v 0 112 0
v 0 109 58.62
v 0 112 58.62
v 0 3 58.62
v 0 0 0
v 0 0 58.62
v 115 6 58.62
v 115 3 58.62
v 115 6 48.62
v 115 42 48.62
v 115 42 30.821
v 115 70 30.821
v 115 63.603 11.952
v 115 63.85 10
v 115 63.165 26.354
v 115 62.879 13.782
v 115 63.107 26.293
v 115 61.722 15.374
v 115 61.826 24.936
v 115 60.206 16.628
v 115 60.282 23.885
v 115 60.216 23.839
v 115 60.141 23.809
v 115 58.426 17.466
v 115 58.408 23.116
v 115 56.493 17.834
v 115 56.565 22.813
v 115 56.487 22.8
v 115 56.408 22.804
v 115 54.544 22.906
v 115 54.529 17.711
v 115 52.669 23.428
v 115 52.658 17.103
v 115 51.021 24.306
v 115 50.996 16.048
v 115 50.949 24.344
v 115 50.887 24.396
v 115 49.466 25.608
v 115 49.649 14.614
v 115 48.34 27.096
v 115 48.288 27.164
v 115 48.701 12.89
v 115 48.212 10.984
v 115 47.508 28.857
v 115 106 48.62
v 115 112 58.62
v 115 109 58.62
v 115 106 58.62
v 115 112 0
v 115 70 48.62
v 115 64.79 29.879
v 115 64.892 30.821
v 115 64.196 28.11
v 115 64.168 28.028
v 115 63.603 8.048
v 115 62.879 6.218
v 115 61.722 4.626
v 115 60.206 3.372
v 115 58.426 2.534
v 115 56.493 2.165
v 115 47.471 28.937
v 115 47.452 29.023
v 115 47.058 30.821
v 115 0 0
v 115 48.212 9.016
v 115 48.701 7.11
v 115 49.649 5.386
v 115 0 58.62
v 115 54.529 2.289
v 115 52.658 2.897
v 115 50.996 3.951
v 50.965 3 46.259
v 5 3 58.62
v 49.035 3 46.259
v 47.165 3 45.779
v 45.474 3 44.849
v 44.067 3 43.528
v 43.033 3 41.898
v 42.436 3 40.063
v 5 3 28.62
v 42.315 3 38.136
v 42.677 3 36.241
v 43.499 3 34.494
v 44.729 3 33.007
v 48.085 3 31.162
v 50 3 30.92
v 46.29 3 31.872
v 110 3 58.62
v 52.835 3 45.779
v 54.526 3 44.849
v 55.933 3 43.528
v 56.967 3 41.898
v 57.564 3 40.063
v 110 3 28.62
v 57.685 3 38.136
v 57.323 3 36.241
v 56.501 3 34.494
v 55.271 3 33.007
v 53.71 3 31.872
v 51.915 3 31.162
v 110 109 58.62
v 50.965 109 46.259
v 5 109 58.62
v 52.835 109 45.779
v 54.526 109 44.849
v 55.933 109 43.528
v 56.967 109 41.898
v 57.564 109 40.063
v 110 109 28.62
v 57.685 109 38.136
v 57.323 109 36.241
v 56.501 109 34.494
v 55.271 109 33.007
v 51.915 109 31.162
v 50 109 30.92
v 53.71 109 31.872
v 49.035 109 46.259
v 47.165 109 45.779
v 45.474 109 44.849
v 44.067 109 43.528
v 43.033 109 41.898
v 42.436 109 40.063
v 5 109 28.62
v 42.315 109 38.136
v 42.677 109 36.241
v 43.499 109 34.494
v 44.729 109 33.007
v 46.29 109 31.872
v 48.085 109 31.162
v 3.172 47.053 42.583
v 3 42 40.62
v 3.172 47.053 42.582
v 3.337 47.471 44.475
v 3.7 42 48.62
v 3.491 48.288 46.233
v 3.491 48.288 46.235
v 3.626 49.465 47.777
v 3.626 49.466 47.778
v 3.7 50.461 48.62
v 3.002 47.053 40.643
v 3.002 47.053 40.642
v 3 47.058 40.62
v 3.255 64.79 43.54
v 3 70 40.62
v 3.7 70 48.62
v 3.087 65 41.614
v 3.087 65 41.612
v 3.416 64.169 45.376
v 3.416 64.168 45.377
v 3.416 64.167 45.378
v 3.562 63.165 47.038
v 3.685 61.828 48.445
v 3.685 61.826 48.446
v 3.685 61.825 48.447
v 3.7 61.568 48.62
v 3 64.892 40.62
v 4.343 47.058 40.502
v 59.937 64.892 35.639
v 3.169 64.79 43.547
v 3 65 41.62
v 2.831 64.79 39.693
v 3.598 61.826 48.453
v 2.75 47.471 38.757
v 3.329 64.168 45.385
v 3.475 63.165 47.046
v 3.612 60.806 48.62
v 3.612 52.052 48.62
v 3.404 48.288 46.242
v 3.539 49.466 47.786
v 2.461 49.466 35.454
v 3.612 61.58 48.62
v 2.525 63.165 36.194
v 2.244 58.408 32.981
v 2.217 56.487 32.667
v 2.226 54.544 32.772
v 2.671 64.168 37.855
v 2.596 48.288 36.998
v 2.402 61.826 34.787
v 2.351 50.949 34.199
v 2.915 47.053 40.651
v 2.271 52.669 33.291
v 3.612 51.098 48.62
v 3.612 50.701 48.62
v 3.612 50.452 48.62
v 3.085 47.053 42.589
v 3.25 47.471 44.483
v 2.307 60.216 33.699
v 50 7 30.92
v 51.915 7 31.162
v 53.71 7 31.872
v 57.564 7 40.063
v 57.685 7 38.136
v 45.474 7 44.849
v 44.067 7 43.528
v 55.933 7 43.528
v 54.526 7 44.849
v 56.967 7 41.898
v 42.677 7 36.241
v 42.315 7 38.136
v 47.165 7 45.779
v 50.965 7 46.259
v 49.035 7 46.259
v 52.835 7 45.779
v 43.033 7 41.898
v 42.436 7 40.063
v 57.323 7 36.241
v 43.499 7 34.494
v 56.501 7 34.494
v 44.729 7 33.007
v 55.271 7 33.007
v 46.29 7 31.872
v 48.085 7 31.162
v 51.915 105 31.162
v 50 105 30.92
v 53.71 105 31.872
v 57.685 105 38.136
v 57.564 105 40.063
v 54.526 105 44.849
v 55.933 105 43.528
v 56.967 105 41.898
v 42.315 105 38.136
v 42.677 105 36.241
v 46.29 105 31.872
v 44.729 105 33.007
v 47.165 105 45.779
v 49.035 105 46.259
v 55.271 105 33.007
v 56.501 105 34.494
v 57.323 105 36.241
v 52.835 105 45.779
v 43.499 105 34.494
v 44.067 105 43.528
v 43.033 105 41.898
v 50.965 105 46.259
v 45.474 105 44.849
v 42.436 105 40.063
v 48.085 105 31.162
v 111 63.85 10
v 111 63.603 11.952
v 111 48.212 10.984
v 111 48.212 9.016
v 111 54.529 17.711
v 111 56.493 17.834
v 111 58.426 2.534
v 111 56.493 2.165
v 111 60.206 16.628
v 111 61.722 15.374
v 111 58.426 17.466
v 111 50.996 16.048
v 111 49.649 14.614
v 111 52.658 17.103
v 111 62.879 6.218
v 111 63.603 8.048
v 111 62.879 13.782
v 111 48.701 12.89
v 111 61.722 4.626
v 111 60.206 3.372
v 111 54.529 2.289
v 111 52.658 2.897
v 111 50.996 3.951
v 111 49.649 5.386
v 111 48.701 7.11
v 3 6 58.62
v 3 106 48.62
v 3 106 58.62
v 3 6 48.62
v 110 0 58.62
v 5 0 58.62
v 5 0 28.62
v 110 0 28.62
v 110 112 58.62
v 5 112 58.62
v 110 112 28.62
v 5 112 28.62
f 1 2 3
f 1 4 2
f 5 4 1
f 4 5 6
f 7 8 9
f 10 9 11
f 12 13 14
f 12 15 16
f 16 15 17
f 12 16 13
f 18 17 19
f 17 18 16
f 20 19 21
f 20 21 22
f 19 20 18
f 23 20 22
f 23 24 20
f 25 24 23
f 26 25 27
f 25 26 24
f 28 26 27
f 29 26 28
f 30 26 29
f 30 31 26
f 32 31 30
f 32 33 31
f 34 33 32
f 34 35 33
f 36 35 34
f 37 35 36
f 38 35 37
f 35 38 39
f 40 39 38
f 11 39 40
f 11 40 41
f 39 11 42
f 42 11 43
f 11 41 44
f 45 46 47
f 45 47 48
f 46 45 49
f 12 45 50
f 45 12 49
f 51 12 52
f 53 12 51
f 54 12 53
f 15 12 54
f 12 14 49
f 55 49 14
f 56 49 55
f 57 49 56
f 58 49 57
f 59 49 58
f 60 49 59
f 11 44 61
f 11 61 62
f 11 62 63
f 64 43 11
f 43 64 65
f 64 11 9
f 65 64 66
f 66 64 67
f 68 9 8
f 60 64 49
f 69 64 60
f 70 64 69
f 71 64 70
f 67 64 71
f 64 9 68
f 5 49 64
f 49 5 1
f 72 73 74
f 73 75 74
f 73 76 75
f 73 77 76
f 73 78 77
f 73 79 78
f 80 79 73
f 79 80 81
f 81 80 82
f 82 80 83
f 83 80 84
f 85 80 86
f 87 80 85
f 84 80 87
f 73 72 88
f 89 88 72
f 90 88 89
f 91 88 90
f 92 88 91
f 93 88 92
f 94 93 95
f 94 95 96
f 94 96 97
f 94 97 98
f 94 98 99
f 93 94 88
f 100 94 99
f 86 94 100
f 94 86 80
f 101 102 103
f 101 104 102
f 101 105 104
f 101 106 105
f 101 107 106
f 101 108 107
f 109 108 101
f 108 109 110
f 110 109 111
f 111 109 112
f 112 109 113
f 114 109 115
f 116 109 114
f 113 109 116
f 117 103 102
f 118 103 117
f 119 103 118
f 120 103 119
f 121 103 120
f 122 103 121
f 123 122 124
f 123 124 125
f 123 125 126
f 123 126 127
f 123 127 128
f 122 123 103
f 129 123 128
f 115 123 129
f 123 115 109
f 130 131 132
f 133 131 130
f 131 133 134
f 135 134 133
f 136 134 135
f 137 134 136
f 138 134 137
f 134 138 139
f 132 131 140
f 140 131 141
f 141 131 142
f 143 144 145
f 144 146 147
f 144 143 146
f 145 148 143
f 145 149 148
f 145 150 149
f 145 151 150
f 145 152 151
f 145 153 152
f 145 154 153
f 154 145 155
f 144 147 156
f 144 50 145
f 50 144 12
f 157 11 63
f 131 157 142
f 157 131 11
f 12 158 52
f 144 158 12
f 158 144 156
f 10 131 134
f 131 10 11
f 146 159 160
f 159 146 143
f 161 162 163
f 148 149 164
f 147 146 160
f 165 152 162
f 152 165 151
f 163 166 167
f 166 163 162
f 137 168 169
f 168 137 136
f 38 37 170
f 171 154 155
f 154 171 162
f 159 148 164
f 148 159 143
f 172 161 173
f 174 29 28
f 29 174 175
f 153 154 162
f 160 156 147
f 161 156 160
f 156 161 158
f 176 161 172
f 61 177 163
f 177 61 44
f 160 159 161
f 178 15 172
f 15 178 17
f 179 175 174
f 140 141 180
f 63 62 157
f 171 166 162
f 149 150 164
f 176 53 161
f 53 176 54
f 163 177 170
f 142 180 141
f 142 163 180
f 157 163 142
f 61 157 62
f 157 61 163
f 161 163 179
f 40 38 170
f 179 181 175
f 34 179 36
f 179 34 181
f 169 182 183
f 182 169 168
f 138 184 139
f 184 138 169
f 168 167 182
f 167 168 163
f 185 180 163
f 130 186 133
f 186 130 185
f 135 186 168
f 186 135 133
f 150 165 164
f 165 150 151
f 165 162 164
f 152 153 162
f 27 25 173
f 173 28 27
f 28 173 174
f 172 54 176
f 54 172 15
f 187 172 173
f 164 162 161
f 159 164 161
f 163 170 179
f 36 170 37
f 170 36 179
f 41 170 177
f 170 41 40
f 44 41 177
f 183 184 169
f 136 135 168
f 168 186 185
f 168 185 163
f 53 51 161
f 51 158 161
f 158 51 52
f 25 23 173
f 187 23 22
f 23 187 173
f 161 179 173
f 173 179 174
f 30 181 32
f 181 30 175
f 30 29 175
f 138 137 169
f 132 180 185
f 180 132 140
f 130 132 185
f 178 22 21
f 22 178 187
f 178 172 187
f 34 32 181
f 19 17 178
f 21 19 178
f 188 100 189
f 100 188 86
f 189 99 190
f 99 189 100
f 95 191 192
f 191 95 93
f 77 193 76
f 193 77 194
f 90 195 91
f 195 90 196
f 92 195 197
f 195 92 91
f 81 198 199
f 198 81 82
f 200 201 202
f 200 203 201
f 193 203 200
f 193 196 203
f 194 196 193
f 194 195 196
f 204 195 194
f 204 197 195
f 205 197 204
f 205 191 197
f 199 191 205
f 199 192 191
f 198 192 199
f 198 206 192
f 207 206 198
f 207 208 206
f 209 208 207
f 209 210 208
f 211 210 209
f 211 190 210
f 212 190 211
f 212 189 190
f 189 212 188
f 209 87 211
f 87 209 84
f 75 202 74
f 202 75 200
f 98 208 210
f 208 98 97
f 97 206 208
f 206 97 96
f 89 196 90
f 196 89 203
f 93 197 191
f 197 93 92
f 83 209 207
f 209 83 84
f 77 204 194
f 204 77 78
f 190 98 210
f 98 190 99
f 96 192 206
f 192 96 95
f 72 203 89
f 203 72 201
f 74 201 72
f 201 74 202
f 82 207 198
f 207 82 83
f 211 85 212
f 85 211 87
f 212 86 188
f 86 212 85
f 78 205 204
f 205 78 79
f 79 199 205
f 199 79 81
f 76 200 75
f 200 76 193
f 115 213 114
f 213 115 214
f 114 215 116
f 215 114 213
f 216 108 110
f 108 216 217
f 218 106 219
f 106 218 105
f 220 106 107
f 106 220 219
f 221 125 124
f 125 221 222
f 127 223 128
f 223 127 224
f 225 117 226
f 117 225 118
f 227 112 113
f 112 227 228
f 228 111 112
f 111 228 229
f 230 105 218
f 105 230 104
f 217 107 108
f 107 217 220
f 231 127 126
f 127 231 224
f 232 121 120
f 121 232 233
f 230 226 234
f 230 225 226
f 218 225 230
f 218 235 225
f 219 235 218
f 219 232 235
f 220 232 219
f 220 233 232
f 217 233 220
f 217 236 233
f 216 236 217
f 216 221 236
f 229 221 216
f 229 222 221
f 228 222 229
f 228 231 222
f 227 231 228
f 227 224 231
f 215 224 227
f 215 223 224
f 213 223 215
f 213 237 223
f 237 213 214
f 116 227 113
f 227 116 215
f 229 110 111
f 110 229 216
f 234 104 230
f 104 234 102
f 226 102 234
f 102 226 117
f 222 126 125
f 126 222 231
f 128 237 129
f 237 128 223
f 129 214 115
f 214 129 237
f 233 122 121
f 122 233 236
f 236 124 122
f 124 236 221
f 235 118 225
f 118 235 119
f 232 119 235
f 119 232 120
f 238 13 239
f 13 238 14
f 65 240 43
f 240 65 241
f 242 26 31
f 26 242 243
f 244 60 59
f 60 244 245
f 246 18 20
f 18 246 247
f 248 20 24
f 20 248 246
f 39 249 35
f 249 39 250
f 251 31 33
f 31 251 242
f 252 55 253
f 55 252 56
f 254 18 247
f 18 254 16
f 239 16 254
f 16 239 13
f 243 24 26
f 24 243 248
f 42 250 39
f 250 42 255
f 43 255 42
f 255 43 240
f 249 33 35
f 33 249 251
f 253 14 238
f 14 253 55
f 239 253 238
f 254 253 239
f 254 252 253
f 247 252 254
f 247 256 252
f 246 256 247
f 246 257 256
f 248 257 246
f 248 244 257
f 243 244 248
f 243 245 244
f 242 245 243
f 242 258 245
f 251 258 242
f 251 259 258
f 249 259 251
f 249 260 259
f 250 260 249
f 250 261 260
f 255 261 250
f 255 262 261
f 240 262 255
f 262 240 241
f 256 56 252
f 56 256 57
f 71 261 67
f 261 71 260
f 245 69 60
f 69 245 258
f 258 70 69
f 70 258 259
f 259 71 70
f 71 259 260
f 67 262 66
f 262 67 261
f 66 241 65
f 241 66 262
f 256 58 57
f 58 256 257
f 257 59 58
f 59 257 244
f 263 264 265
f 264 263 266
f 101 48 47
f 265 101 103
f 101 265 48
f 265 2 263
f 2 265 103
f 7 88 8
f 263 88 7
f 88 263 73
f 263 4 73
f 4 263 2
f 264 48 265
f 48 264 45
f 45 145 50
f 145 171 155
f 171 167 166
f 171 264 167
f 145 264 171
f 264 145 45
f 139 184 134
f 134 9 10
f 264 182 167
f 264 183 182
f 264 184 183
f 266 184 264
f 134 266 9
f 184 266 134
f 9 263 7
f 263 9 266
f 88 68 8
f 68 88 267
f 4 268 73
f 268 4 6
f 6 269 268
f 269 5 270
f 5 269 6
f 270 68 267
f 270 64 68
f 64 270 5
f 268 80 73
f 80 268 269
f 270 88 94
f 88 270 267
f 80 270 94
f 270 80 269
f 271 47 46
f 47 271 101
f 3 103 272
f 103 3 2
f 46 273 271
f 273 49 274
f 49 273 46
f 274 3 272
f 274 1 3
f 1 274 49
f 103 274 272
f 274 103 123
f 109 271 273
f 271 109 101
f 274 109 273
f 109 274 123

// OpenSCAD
// file: GizmosMarbleHiddenTrackCore.scad
//TODO: Get correct length
length = 115;
diameter = 18;
wallThickness = 3;
angle = 5;
floorThickness = 10;
heightStepDown = .2;
offset = diameter + 10;
height = 40.42 + heightStepDown + offset;
magnetHeightOffset = 1;
magnetBaseInnerDiameter = 15.4;
frontMagnetBaseInnerDiameter = magnetBaseInnerDiameter + .3;
magnetHeight = 4.0;
width = diameter + wallThickness + 85;
centerOfConnectorX = 50;
centerOfConnectorY = 10;
sideCenterOfConnectorY = height - 30;
centerOfBackConnectorX = width/2;
echo(centerOfBackConnectorX);
lidHeight = 10;
backstopHeight = 10;

module Track(useLeftConnector, useRightConnector) {
//    union() {
    difference(){

        cube([length, width, height]);
        
        translate([wallThickness, width/2 - diameter/2 - 5, height - offset])
            rotate([0, angle, 0])
                cube([length + wallThickness, diameter + 10, height]);
         
//     translate([wallThickness, wallThickness, height - (backstopHeight + lidHeight + 5)])
//            cube([length + wallThickness, width - (wallThickness *2), 5]);       
        translate([wallThickness, width/2, height - offset + 1 ])
            rotate([90 + angle, 0, 90])
                cylinder(length + 3, d=diameter);
        if(useLeftConnector)
            translate([centerOfConnectorX, magnetHeight, sideCenterOfConnectorY])
                rotate([90, 90, 0])
                    cylinder(magnetHeight, d=magnetBaseInnerDiameter);
        if(useRightConnector)
        translate([centerOfConnectorX, width, sideCenterOfConnectorY])
            rotate([90, 90, 0])
                cylinder(magnetHeight, d=magnetBaseInnerDiameter);
        
    //    translate([0, centerOfBackConnectorX, centerOfConnectorY])
    //        rotate([90, 0, 90])
    //            cylinder(magnetHeight, d=magnetBaseInnerDiameter);
        
        translate([length - magnetHeight, centerOfBackConnectorX, centerOfConnectorY])
            rotate([90, 0, 90])
                cylinder(magnetHeight, d=frontMagnetBaseInnerDiameter);


        translate([wallThickness,wallThickness,height - (backstopHeight + lidHeight)])
            cube([length,width - wallThickness * 2,lidHeight]);
    }

    //translate([length, 0, 0])
    //    import("C:/Code/Git/3DPrint/PotionExplosionMarbleTrack.stl");

}
//}
// main file
include<GizmosMarbleHiddenTrackCore.scad>
union()
    difference(){
        translate([0, wallThickness, 0])
            Track(true, true);
        translate([0,wallThickness,height - backstopHeight])
            cube([length,width,backstopHeight]);

    }
    difference() {
        translate([0, 0, 0])
            cube([length, wallThickness, height - backstopHeight]);
        translate([5, 0, height - (backstopHeight + 30)])
            cube([length - 10, wallThickness, 30]);
    }
    difference() {
        translate([0, width + wallThickness, 0])
            cube([length, wallThickness, height - backstopHeight]);
        translate([5, width + wallThickness, height - (backstopHeight + 30)])
            cube([length - 10, wallThickness, 30]);
    }

//    translate([wallThickness,wallThickness,height - backstopHeight])
//        cube([length,width,backstopHeight]);8
;
